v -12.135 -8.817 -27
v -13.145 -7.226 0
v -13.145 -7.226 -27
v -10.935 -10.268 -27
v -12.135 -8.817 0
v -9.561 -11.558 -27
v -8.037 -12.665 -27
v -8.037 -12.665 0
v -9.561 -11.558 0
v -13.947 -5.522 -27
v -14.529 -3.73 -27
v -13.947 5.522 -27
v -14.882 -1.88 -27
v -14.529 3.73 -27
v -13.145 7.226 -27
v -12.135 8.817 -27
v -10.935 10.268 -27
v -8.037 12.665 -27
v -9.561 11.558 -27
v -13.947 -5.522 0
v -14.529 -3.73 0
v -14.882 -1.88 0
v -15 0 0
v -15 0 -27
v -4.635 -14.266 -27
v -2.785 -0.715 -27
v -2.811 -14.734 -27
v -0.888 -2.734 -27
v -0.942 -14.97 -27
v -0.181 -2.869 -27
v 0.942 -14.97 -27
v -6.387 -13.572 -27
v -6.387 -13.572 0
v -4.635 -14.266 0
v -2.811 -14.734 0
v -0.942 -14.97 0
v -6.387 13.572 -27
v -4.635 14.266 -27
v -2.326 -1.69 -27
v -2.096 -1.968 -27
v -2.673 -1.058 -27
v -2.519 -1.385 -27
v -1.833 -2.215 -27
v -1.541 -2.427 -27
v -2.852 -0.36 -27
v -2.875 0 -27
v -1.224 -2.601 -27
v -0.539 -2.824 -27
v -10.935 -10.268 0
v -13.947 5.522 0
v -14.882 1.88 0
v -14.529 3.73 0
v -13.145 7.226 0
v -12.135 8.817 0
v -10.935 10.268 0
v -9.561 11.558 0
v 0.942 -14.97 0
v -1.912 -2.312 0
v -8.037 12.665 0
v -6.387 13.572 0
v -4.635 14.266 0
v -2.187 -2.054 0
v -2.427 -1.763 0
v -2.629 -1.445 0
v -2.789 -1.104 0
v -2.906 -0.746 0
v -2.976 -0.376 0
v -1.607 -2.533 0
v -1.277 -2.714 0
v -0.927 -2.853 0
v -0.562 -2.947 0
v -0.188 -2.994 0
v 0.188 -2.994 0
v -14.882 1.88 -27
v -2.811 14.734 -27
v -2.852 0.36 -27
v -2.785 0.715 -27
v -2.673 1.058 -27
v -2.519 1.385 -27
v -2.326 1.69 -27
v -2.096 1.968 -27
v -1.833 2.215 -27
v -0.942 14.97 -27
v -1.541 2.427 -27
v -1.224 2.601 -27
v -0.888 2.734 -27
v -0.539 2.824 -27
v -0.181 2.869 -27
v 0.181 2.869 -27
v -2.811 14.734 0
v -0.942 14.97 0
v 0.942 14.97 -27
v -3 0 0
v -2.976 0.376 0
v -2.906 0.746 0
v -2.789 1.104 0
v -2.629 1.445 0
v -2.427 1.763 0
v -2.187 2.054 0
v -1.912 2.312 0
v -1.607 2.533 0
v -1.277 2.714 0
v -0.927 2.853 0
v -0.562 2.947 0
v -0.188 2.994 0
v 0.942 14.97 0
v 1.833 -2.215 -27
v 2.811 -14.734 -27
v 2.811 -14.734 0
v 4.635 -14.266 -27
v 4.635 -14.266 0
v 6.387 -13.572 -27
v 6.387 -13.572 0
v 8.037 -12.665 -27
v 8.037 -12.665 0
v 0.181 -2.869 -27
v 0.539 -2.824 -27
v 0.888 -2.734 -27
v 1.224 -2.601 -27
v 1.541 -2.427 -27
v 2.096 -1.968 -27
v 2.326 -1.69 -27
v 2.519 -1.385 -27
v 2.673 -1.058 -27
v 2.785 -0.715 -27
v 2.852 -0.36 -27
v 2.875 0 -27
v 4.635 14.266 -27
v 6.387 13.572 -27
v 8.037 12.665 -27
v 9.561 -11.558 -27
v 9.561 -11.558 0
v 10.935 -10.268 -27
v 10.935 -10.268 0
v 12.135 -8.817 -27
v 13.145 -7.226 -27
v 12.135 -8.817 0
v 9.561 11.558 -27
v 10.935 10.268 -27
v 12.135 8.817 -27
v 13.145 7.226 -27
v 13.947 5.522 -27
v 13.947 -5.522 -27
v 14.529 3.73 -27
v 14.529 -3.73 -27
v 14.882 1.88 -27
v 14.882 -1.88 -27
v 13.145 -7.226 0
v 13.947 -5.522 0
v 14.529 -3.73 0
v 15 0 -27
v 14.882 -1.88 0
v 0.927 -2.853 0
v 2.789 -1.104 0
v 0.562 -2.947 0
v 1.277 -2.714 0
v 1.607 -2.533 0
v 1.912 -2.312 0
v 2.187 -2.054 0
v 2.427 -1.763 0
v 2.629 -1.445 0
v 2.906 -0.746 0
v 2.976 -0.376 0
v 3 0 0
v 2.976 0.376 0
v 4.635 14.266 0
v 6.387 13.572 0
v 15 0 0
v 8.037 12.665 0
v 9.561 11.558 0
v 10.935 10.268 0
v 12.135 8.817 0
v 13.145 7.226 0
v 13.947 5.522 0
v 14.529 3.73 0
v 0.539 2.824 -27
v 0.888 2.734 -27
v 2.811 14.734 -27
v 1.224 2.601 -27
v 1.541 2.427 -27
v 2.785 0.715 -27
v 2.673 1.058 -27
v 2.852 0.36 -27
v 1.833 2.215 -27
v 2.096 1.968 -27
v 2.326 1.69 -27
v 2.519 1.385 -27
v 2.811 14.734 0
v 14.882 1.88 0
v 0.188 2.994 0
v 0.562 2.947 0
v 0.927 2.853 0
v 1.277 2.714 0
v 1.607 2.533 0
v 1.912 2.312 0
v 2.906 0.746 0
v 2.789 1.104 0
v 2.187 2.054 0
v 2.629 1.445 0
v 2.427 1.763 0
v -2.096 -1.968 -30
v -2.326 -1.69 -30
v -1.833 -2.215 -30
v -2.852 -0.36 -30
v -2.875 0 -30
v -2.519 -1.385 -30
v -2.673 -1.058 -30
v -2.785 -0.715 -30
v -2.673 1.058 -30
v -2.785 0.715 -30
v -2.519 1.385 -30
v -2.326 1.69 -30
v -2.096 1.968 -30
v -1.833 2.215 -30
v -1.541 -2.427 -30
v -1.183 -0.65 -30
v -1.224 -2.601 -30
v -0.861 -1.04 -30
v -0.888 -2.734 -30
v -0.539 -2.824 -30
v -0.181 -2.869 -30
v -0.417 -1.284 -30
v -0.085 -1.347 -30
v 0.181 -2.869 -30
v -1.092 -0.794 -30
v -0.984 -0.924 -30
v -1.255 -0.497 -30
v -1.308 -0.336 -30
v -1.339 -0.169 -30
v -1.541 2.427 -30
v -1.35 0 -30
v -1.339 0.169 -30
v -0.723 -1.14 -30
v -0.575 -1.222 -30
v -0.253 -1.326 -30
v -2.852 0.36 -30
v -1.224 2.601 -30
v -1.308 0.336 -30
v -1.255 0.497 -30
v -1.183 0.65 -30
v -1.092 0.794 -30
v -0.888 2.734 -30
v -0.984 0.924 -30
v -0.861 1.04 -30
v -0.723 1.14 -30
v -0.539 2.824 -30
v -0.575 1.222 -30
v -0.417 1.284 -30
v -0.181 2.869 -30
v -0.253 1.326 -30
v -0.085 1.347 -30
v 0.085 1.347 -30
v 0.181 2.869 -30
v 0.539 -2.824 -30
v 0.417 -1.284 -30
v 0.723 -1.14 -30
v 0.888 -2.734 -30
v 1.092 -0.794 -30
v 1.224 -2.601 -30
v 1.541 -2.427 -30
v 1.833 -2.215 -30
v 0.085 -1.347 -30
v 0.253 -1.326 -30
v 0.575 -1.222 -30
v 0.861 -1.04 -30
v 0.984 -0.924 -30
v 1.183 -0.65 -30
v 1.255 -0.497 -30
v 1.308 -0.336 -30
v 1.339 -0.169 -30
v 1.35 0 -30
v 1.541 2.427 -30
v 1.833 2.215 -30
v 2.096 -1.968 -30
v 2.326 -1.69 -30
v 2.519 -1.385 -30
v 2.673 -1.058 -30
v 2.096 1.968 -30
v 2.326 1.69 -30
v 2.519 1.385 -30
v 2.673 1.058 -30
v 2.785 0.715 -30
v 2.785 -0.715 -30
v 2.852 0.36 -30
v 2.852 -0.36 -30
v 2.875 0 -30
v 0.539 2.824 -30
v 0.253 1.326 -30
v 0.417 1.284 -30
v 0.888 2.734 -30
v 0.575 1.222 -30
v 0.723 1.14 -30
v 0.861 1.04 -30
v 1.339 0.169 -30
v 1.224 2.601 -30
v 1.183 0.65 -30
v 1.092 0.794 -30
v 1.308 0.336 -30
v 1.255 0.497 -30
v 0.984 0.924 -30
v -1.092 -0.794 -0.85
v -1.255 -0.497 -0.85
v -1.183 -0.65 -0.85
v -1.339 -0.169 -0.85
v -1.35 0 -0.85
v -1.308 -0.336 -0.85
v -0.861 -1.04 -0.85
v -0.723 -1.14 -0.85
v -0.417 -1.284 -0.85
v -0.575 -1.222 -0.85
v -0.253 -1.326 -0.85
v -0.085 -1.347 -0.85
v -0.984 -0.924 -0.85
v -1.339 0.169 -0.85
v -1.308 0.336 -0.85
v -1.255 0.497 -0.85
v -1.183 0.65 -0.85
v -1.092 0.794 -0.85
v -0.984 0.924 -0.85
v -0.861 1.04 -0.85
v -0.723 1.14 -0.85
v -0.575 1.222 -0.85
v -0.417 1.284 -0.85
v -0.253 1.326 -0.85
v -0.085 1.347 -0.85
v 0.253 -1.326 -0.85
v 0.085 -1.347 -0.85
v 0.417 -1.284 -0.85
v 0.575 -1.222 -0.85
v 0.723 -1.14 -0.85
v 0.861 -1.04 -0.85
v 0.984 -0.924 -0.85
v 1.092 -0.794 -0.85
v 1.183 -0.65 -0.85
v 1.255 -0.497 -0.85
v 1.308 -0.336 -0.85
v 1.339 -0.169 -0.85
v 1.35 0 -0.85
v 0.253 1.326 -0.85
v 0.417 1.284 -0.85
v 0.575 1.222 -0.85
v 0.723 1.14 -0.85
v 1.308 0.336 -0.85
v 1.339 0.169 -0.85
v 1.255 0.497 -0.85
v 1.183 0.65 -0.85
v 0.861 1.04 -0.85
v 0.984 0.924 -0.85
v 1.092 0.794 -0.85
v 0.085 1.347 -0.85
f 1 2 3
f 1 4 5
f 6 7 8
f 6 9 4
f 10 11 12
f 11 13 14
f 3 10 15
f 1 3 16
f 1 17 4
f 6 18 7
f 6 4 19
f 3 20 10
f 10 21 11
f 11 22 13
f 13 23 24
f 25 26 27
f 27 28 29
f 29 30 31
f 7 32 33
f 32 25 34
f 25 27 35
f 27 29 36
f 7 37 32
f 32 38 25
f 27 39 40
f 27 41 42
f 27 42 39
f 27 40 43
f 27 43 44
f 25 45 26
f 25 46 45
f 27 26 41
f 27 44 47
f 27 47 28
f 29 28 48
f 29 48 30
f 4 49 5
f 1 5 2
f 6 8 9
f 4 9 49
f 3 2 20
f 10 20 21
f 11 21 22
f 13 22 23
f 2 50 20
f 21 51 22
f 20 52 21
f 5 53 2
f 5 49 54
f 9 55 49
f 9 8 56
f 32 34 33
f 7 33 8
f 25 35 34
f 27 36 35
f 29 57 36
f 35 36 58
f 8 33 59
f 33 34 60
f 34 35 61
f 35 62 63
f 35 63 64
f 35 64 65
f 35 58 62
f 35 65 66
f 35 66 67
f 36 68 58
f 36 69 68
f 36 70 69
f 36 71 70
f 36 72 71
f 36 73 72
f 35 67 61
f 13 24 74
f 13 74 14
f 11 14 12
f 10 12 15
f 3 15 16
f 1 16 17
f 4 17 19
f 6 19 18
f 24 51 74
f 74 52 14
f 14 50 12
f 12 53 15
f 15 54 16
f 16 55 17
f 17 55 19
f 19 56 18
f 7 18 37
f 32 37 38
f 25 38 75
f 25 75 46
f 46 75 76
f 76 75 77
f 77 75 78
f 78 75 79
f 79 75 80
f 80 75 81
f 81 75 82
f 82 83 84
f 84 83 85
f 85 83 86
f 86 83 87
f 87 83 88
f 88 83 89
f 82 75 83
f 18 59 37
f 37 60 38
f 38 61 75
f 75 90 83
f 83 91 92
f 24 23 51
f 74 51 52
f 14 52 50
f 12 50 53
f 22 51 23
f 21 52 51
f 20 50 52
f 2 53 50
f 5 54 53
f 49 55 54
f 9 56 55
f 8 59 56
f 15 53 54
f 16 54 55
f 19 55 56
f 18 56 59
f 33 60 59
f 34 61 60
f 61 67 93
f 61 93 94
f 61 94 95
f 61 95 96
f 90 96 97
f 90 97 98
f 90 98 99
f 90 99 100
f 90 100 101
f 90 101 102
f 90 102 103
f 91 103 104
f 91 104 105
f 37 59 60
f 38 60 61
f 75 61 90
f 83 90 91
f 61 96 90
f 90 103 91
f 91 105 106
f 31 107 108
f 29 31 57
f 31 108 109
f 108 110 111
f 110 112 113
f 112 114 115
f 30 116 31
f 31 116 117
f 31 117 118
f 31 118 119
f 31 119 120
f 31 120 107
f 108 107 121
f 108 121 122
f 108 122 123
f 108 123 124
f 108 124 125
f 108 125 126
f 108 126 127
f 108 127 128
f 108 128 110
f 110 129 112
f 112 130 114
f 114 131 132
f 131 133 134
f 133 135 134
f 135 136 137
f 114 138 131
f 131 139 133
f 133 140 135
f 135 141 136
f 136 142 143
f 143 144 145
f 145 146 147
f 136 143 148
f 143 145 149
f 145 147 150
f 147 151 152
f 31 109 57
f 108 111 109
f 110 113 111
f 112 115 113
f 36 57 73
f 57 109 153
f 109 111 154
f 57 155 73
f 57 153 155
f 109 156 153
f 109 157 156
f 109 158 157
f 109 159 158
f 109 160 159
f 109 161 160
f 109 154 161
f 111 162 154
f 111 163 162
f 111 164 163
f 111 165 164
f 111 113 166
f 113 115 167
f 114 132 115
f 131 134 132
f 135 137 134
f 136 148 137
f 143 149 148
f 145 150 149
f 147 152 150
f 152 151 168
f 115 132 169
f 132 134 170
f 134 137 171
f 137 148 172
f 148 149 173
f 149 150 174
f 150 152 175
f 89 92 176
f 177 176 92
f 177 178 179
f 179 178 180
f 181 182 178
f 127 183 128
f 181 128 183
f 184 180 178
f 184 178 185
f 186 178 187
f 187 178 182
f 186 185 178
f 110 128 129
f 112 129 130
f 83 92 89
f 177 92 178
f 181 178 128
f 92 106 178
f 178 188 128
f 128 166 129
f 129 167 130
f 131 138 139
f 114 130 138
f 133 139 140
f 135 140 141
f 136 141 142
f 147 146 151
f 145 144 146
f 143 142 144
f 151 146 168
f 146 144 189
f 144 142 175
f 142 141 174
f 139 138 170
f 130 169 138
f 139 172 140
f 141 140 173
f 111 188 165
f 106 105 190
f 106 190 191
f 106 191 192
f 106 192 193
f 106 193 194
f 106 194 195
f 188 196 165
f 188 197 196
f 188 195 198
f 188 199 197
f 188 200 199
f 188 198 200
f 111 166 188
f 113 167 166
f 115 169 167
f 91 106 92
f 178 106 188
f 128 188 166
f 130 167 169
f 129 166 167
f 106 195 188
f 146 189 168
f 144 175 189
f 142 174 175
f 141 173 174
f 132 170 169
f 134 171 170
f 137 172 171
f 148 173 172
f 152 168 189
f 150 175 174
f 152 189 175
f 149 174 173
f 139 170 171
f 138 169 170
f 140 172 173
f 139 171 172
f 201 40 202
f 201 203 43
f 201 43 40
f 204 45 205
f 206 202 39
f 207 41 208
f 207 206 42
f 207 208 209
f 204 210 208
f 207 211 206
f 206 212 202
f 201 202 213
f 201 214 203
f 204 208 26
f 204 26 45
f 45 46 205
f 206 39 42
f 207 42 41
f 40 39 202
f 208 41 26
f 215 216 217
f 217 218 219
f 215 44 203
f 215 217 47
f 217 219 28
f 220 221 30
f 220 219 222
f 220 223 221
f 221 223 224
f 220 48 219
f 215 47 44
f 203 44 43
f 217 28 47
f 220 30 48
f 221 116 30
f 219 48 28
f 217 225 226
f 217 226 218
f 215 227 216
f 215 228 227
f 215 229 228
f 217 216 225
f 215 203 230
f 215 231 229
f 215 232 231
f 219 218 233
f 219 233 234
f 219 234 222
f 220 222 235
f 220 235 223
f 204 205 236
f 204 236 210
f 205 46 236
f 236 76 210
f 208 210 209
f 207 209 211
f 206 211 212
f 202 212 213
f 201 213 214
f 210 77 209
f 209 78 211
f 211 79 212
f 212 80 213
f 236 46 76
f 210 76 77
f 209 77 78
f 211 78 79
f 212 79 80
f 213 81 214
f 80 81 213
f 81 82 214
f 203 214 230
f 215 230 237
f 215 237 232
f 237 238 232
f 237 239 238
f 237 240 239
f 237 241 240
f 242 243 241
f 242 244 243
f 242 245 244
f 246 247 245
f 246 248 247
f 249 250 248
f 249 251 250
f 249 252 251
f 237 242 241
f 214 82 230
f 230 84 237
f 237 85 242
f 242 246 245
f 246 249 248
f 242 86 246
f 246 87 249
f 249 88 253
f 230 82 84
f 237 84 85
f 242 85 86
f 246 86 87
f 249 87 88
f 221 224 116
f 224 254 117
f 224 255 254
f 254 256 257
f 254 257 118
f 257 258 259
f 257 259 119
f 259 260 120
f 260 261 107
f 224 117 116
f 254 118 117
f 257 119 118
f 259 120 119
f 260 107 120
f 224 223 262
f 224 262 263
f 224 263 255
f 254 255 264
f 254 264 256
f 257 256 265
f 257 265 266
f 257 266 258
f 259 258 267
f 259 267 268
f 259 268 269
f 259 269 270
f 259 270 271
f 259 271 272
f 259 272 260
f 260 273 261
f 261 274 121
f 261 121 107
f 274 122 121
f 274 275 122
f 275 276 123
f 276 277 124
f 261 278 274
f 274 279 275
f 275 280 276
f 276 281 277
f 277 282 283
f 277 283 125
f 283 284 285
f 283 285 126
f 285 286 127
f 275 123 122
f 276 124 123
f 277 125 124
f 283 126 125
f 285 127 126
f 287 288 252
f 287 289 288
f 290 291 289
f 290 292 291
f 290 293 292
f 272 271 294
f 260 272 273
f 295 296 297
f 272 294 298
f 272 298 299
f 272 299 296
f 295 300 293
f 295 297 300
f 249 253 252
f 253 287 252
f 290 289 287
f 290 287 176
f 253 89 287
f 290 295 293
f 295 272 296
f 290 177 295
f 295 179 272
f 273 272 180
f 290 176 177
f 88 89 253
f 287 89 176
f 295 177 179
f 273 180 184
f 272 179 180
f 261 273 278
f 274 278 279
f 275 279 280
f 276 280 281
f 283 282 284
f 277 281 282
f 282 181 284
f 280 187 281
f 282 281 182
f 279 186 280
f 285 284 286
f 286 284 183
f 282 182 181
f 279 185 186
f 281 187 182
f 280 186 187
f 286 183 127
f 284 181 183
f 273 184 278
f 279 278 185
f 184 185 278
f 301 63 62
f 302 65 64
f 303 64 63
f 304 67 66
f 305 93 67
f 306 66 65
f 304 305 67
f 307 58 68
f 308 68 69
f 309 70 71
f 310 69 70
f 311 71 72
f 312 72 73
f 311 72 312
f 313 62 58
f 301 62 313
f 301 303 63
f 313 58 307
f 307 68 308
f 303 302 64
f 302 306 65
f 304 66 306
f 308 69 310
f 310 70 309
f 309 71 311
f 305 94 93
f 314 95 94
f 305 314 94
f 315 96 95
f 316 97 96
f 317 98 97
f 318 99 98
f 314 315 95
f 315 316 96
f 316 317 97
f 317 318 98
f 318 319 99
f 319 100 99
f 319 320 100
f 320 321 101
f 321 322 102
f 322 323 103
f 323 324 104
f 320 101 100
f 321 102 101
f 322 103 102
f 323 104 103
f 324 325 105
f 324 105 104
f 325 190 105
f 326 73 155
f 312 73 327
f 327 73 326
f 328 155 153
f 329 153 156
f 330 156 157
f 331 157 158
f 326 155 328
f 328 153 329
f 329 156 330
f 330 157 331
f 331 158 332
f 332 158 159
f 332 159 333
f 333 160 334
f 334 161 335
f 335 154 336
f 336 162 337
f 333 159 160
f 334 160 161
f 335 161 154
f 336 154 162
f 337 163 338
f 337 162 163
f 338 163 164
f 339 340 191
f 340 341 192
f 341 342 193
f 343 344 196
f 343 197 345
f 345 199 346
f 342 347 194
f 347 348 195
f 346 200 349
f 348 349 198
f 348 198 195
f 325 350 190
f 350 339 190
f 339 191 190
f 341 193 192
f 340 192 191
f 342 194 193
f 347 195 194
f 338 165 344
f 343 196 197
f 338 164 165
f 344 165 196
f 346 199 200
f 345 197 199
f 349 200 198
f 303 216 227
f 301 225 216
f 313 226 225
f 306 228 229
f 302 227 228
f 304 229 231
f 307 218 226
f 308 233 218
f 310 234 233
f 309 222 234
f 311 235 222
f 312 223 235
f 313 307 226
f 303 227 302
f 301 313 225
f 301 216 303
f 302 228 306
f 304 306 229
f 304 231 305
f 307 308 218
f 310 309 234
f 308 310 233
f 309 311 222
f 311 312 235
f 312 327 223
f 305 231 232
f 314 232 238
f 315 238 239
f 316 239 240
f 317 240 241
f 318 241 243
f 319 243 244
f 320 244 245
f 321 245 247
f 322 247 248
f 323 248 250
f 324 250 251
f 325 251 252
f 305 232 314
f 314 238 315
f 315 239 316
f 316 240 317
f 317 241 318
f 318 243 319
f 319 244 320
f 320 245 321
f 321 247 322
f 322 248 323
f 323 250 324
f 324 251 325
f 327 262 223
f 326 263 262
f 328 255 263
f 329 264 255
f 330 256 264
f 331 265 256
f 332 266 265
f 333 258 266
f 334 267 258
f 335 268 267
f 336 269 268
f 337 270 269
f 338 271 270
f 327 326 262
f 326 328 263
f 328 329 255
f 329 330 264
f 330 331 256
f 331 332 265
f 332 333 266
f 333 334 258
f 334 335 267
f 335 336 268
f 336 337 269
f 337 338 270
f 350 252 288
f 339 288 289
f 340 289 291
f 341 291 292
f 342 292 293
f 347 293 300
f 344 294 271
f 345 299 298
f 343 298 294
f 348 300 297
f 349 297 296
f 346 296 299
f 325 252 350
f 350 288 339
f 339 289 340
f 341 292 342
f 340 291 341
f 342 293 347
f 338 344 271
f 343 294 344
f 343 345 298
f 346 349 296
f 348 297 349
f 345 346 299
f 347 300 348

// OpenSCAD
$fn = 50;

difference() {
	union() {
		translate(v = [0, 0, -27.0]) {
			cylinder(h = 27, r = 15.0);
		}
		#translate(v = [0, 0, -30.0]) {
			cylinder(h = 30, r = 2.875);
		}
	}
	union() {
		translate(v = [0, 0, 0]) {
			rotate(a = [0, 0, 0]) {
				difference() {
					union() {
						translate(v = [0, 0, -30.0]) {
							cylinder(h = 30, r = 1.0);
						}
						translate(v = [0, 0, -0.85]) {
							cylinder(h = 0.85, r1 = 1.35, r2 = 3.0);
						}
						translate(v = [0, 0, -30.0]) {
							cylinder(h = 30, r = 1.35);
						}
						translate(v = [0, 0, -30.0]) {
							cylinder(h = 30, r = 1.0);
						}
					}
					union();
				}
			}
		}
	}
}
